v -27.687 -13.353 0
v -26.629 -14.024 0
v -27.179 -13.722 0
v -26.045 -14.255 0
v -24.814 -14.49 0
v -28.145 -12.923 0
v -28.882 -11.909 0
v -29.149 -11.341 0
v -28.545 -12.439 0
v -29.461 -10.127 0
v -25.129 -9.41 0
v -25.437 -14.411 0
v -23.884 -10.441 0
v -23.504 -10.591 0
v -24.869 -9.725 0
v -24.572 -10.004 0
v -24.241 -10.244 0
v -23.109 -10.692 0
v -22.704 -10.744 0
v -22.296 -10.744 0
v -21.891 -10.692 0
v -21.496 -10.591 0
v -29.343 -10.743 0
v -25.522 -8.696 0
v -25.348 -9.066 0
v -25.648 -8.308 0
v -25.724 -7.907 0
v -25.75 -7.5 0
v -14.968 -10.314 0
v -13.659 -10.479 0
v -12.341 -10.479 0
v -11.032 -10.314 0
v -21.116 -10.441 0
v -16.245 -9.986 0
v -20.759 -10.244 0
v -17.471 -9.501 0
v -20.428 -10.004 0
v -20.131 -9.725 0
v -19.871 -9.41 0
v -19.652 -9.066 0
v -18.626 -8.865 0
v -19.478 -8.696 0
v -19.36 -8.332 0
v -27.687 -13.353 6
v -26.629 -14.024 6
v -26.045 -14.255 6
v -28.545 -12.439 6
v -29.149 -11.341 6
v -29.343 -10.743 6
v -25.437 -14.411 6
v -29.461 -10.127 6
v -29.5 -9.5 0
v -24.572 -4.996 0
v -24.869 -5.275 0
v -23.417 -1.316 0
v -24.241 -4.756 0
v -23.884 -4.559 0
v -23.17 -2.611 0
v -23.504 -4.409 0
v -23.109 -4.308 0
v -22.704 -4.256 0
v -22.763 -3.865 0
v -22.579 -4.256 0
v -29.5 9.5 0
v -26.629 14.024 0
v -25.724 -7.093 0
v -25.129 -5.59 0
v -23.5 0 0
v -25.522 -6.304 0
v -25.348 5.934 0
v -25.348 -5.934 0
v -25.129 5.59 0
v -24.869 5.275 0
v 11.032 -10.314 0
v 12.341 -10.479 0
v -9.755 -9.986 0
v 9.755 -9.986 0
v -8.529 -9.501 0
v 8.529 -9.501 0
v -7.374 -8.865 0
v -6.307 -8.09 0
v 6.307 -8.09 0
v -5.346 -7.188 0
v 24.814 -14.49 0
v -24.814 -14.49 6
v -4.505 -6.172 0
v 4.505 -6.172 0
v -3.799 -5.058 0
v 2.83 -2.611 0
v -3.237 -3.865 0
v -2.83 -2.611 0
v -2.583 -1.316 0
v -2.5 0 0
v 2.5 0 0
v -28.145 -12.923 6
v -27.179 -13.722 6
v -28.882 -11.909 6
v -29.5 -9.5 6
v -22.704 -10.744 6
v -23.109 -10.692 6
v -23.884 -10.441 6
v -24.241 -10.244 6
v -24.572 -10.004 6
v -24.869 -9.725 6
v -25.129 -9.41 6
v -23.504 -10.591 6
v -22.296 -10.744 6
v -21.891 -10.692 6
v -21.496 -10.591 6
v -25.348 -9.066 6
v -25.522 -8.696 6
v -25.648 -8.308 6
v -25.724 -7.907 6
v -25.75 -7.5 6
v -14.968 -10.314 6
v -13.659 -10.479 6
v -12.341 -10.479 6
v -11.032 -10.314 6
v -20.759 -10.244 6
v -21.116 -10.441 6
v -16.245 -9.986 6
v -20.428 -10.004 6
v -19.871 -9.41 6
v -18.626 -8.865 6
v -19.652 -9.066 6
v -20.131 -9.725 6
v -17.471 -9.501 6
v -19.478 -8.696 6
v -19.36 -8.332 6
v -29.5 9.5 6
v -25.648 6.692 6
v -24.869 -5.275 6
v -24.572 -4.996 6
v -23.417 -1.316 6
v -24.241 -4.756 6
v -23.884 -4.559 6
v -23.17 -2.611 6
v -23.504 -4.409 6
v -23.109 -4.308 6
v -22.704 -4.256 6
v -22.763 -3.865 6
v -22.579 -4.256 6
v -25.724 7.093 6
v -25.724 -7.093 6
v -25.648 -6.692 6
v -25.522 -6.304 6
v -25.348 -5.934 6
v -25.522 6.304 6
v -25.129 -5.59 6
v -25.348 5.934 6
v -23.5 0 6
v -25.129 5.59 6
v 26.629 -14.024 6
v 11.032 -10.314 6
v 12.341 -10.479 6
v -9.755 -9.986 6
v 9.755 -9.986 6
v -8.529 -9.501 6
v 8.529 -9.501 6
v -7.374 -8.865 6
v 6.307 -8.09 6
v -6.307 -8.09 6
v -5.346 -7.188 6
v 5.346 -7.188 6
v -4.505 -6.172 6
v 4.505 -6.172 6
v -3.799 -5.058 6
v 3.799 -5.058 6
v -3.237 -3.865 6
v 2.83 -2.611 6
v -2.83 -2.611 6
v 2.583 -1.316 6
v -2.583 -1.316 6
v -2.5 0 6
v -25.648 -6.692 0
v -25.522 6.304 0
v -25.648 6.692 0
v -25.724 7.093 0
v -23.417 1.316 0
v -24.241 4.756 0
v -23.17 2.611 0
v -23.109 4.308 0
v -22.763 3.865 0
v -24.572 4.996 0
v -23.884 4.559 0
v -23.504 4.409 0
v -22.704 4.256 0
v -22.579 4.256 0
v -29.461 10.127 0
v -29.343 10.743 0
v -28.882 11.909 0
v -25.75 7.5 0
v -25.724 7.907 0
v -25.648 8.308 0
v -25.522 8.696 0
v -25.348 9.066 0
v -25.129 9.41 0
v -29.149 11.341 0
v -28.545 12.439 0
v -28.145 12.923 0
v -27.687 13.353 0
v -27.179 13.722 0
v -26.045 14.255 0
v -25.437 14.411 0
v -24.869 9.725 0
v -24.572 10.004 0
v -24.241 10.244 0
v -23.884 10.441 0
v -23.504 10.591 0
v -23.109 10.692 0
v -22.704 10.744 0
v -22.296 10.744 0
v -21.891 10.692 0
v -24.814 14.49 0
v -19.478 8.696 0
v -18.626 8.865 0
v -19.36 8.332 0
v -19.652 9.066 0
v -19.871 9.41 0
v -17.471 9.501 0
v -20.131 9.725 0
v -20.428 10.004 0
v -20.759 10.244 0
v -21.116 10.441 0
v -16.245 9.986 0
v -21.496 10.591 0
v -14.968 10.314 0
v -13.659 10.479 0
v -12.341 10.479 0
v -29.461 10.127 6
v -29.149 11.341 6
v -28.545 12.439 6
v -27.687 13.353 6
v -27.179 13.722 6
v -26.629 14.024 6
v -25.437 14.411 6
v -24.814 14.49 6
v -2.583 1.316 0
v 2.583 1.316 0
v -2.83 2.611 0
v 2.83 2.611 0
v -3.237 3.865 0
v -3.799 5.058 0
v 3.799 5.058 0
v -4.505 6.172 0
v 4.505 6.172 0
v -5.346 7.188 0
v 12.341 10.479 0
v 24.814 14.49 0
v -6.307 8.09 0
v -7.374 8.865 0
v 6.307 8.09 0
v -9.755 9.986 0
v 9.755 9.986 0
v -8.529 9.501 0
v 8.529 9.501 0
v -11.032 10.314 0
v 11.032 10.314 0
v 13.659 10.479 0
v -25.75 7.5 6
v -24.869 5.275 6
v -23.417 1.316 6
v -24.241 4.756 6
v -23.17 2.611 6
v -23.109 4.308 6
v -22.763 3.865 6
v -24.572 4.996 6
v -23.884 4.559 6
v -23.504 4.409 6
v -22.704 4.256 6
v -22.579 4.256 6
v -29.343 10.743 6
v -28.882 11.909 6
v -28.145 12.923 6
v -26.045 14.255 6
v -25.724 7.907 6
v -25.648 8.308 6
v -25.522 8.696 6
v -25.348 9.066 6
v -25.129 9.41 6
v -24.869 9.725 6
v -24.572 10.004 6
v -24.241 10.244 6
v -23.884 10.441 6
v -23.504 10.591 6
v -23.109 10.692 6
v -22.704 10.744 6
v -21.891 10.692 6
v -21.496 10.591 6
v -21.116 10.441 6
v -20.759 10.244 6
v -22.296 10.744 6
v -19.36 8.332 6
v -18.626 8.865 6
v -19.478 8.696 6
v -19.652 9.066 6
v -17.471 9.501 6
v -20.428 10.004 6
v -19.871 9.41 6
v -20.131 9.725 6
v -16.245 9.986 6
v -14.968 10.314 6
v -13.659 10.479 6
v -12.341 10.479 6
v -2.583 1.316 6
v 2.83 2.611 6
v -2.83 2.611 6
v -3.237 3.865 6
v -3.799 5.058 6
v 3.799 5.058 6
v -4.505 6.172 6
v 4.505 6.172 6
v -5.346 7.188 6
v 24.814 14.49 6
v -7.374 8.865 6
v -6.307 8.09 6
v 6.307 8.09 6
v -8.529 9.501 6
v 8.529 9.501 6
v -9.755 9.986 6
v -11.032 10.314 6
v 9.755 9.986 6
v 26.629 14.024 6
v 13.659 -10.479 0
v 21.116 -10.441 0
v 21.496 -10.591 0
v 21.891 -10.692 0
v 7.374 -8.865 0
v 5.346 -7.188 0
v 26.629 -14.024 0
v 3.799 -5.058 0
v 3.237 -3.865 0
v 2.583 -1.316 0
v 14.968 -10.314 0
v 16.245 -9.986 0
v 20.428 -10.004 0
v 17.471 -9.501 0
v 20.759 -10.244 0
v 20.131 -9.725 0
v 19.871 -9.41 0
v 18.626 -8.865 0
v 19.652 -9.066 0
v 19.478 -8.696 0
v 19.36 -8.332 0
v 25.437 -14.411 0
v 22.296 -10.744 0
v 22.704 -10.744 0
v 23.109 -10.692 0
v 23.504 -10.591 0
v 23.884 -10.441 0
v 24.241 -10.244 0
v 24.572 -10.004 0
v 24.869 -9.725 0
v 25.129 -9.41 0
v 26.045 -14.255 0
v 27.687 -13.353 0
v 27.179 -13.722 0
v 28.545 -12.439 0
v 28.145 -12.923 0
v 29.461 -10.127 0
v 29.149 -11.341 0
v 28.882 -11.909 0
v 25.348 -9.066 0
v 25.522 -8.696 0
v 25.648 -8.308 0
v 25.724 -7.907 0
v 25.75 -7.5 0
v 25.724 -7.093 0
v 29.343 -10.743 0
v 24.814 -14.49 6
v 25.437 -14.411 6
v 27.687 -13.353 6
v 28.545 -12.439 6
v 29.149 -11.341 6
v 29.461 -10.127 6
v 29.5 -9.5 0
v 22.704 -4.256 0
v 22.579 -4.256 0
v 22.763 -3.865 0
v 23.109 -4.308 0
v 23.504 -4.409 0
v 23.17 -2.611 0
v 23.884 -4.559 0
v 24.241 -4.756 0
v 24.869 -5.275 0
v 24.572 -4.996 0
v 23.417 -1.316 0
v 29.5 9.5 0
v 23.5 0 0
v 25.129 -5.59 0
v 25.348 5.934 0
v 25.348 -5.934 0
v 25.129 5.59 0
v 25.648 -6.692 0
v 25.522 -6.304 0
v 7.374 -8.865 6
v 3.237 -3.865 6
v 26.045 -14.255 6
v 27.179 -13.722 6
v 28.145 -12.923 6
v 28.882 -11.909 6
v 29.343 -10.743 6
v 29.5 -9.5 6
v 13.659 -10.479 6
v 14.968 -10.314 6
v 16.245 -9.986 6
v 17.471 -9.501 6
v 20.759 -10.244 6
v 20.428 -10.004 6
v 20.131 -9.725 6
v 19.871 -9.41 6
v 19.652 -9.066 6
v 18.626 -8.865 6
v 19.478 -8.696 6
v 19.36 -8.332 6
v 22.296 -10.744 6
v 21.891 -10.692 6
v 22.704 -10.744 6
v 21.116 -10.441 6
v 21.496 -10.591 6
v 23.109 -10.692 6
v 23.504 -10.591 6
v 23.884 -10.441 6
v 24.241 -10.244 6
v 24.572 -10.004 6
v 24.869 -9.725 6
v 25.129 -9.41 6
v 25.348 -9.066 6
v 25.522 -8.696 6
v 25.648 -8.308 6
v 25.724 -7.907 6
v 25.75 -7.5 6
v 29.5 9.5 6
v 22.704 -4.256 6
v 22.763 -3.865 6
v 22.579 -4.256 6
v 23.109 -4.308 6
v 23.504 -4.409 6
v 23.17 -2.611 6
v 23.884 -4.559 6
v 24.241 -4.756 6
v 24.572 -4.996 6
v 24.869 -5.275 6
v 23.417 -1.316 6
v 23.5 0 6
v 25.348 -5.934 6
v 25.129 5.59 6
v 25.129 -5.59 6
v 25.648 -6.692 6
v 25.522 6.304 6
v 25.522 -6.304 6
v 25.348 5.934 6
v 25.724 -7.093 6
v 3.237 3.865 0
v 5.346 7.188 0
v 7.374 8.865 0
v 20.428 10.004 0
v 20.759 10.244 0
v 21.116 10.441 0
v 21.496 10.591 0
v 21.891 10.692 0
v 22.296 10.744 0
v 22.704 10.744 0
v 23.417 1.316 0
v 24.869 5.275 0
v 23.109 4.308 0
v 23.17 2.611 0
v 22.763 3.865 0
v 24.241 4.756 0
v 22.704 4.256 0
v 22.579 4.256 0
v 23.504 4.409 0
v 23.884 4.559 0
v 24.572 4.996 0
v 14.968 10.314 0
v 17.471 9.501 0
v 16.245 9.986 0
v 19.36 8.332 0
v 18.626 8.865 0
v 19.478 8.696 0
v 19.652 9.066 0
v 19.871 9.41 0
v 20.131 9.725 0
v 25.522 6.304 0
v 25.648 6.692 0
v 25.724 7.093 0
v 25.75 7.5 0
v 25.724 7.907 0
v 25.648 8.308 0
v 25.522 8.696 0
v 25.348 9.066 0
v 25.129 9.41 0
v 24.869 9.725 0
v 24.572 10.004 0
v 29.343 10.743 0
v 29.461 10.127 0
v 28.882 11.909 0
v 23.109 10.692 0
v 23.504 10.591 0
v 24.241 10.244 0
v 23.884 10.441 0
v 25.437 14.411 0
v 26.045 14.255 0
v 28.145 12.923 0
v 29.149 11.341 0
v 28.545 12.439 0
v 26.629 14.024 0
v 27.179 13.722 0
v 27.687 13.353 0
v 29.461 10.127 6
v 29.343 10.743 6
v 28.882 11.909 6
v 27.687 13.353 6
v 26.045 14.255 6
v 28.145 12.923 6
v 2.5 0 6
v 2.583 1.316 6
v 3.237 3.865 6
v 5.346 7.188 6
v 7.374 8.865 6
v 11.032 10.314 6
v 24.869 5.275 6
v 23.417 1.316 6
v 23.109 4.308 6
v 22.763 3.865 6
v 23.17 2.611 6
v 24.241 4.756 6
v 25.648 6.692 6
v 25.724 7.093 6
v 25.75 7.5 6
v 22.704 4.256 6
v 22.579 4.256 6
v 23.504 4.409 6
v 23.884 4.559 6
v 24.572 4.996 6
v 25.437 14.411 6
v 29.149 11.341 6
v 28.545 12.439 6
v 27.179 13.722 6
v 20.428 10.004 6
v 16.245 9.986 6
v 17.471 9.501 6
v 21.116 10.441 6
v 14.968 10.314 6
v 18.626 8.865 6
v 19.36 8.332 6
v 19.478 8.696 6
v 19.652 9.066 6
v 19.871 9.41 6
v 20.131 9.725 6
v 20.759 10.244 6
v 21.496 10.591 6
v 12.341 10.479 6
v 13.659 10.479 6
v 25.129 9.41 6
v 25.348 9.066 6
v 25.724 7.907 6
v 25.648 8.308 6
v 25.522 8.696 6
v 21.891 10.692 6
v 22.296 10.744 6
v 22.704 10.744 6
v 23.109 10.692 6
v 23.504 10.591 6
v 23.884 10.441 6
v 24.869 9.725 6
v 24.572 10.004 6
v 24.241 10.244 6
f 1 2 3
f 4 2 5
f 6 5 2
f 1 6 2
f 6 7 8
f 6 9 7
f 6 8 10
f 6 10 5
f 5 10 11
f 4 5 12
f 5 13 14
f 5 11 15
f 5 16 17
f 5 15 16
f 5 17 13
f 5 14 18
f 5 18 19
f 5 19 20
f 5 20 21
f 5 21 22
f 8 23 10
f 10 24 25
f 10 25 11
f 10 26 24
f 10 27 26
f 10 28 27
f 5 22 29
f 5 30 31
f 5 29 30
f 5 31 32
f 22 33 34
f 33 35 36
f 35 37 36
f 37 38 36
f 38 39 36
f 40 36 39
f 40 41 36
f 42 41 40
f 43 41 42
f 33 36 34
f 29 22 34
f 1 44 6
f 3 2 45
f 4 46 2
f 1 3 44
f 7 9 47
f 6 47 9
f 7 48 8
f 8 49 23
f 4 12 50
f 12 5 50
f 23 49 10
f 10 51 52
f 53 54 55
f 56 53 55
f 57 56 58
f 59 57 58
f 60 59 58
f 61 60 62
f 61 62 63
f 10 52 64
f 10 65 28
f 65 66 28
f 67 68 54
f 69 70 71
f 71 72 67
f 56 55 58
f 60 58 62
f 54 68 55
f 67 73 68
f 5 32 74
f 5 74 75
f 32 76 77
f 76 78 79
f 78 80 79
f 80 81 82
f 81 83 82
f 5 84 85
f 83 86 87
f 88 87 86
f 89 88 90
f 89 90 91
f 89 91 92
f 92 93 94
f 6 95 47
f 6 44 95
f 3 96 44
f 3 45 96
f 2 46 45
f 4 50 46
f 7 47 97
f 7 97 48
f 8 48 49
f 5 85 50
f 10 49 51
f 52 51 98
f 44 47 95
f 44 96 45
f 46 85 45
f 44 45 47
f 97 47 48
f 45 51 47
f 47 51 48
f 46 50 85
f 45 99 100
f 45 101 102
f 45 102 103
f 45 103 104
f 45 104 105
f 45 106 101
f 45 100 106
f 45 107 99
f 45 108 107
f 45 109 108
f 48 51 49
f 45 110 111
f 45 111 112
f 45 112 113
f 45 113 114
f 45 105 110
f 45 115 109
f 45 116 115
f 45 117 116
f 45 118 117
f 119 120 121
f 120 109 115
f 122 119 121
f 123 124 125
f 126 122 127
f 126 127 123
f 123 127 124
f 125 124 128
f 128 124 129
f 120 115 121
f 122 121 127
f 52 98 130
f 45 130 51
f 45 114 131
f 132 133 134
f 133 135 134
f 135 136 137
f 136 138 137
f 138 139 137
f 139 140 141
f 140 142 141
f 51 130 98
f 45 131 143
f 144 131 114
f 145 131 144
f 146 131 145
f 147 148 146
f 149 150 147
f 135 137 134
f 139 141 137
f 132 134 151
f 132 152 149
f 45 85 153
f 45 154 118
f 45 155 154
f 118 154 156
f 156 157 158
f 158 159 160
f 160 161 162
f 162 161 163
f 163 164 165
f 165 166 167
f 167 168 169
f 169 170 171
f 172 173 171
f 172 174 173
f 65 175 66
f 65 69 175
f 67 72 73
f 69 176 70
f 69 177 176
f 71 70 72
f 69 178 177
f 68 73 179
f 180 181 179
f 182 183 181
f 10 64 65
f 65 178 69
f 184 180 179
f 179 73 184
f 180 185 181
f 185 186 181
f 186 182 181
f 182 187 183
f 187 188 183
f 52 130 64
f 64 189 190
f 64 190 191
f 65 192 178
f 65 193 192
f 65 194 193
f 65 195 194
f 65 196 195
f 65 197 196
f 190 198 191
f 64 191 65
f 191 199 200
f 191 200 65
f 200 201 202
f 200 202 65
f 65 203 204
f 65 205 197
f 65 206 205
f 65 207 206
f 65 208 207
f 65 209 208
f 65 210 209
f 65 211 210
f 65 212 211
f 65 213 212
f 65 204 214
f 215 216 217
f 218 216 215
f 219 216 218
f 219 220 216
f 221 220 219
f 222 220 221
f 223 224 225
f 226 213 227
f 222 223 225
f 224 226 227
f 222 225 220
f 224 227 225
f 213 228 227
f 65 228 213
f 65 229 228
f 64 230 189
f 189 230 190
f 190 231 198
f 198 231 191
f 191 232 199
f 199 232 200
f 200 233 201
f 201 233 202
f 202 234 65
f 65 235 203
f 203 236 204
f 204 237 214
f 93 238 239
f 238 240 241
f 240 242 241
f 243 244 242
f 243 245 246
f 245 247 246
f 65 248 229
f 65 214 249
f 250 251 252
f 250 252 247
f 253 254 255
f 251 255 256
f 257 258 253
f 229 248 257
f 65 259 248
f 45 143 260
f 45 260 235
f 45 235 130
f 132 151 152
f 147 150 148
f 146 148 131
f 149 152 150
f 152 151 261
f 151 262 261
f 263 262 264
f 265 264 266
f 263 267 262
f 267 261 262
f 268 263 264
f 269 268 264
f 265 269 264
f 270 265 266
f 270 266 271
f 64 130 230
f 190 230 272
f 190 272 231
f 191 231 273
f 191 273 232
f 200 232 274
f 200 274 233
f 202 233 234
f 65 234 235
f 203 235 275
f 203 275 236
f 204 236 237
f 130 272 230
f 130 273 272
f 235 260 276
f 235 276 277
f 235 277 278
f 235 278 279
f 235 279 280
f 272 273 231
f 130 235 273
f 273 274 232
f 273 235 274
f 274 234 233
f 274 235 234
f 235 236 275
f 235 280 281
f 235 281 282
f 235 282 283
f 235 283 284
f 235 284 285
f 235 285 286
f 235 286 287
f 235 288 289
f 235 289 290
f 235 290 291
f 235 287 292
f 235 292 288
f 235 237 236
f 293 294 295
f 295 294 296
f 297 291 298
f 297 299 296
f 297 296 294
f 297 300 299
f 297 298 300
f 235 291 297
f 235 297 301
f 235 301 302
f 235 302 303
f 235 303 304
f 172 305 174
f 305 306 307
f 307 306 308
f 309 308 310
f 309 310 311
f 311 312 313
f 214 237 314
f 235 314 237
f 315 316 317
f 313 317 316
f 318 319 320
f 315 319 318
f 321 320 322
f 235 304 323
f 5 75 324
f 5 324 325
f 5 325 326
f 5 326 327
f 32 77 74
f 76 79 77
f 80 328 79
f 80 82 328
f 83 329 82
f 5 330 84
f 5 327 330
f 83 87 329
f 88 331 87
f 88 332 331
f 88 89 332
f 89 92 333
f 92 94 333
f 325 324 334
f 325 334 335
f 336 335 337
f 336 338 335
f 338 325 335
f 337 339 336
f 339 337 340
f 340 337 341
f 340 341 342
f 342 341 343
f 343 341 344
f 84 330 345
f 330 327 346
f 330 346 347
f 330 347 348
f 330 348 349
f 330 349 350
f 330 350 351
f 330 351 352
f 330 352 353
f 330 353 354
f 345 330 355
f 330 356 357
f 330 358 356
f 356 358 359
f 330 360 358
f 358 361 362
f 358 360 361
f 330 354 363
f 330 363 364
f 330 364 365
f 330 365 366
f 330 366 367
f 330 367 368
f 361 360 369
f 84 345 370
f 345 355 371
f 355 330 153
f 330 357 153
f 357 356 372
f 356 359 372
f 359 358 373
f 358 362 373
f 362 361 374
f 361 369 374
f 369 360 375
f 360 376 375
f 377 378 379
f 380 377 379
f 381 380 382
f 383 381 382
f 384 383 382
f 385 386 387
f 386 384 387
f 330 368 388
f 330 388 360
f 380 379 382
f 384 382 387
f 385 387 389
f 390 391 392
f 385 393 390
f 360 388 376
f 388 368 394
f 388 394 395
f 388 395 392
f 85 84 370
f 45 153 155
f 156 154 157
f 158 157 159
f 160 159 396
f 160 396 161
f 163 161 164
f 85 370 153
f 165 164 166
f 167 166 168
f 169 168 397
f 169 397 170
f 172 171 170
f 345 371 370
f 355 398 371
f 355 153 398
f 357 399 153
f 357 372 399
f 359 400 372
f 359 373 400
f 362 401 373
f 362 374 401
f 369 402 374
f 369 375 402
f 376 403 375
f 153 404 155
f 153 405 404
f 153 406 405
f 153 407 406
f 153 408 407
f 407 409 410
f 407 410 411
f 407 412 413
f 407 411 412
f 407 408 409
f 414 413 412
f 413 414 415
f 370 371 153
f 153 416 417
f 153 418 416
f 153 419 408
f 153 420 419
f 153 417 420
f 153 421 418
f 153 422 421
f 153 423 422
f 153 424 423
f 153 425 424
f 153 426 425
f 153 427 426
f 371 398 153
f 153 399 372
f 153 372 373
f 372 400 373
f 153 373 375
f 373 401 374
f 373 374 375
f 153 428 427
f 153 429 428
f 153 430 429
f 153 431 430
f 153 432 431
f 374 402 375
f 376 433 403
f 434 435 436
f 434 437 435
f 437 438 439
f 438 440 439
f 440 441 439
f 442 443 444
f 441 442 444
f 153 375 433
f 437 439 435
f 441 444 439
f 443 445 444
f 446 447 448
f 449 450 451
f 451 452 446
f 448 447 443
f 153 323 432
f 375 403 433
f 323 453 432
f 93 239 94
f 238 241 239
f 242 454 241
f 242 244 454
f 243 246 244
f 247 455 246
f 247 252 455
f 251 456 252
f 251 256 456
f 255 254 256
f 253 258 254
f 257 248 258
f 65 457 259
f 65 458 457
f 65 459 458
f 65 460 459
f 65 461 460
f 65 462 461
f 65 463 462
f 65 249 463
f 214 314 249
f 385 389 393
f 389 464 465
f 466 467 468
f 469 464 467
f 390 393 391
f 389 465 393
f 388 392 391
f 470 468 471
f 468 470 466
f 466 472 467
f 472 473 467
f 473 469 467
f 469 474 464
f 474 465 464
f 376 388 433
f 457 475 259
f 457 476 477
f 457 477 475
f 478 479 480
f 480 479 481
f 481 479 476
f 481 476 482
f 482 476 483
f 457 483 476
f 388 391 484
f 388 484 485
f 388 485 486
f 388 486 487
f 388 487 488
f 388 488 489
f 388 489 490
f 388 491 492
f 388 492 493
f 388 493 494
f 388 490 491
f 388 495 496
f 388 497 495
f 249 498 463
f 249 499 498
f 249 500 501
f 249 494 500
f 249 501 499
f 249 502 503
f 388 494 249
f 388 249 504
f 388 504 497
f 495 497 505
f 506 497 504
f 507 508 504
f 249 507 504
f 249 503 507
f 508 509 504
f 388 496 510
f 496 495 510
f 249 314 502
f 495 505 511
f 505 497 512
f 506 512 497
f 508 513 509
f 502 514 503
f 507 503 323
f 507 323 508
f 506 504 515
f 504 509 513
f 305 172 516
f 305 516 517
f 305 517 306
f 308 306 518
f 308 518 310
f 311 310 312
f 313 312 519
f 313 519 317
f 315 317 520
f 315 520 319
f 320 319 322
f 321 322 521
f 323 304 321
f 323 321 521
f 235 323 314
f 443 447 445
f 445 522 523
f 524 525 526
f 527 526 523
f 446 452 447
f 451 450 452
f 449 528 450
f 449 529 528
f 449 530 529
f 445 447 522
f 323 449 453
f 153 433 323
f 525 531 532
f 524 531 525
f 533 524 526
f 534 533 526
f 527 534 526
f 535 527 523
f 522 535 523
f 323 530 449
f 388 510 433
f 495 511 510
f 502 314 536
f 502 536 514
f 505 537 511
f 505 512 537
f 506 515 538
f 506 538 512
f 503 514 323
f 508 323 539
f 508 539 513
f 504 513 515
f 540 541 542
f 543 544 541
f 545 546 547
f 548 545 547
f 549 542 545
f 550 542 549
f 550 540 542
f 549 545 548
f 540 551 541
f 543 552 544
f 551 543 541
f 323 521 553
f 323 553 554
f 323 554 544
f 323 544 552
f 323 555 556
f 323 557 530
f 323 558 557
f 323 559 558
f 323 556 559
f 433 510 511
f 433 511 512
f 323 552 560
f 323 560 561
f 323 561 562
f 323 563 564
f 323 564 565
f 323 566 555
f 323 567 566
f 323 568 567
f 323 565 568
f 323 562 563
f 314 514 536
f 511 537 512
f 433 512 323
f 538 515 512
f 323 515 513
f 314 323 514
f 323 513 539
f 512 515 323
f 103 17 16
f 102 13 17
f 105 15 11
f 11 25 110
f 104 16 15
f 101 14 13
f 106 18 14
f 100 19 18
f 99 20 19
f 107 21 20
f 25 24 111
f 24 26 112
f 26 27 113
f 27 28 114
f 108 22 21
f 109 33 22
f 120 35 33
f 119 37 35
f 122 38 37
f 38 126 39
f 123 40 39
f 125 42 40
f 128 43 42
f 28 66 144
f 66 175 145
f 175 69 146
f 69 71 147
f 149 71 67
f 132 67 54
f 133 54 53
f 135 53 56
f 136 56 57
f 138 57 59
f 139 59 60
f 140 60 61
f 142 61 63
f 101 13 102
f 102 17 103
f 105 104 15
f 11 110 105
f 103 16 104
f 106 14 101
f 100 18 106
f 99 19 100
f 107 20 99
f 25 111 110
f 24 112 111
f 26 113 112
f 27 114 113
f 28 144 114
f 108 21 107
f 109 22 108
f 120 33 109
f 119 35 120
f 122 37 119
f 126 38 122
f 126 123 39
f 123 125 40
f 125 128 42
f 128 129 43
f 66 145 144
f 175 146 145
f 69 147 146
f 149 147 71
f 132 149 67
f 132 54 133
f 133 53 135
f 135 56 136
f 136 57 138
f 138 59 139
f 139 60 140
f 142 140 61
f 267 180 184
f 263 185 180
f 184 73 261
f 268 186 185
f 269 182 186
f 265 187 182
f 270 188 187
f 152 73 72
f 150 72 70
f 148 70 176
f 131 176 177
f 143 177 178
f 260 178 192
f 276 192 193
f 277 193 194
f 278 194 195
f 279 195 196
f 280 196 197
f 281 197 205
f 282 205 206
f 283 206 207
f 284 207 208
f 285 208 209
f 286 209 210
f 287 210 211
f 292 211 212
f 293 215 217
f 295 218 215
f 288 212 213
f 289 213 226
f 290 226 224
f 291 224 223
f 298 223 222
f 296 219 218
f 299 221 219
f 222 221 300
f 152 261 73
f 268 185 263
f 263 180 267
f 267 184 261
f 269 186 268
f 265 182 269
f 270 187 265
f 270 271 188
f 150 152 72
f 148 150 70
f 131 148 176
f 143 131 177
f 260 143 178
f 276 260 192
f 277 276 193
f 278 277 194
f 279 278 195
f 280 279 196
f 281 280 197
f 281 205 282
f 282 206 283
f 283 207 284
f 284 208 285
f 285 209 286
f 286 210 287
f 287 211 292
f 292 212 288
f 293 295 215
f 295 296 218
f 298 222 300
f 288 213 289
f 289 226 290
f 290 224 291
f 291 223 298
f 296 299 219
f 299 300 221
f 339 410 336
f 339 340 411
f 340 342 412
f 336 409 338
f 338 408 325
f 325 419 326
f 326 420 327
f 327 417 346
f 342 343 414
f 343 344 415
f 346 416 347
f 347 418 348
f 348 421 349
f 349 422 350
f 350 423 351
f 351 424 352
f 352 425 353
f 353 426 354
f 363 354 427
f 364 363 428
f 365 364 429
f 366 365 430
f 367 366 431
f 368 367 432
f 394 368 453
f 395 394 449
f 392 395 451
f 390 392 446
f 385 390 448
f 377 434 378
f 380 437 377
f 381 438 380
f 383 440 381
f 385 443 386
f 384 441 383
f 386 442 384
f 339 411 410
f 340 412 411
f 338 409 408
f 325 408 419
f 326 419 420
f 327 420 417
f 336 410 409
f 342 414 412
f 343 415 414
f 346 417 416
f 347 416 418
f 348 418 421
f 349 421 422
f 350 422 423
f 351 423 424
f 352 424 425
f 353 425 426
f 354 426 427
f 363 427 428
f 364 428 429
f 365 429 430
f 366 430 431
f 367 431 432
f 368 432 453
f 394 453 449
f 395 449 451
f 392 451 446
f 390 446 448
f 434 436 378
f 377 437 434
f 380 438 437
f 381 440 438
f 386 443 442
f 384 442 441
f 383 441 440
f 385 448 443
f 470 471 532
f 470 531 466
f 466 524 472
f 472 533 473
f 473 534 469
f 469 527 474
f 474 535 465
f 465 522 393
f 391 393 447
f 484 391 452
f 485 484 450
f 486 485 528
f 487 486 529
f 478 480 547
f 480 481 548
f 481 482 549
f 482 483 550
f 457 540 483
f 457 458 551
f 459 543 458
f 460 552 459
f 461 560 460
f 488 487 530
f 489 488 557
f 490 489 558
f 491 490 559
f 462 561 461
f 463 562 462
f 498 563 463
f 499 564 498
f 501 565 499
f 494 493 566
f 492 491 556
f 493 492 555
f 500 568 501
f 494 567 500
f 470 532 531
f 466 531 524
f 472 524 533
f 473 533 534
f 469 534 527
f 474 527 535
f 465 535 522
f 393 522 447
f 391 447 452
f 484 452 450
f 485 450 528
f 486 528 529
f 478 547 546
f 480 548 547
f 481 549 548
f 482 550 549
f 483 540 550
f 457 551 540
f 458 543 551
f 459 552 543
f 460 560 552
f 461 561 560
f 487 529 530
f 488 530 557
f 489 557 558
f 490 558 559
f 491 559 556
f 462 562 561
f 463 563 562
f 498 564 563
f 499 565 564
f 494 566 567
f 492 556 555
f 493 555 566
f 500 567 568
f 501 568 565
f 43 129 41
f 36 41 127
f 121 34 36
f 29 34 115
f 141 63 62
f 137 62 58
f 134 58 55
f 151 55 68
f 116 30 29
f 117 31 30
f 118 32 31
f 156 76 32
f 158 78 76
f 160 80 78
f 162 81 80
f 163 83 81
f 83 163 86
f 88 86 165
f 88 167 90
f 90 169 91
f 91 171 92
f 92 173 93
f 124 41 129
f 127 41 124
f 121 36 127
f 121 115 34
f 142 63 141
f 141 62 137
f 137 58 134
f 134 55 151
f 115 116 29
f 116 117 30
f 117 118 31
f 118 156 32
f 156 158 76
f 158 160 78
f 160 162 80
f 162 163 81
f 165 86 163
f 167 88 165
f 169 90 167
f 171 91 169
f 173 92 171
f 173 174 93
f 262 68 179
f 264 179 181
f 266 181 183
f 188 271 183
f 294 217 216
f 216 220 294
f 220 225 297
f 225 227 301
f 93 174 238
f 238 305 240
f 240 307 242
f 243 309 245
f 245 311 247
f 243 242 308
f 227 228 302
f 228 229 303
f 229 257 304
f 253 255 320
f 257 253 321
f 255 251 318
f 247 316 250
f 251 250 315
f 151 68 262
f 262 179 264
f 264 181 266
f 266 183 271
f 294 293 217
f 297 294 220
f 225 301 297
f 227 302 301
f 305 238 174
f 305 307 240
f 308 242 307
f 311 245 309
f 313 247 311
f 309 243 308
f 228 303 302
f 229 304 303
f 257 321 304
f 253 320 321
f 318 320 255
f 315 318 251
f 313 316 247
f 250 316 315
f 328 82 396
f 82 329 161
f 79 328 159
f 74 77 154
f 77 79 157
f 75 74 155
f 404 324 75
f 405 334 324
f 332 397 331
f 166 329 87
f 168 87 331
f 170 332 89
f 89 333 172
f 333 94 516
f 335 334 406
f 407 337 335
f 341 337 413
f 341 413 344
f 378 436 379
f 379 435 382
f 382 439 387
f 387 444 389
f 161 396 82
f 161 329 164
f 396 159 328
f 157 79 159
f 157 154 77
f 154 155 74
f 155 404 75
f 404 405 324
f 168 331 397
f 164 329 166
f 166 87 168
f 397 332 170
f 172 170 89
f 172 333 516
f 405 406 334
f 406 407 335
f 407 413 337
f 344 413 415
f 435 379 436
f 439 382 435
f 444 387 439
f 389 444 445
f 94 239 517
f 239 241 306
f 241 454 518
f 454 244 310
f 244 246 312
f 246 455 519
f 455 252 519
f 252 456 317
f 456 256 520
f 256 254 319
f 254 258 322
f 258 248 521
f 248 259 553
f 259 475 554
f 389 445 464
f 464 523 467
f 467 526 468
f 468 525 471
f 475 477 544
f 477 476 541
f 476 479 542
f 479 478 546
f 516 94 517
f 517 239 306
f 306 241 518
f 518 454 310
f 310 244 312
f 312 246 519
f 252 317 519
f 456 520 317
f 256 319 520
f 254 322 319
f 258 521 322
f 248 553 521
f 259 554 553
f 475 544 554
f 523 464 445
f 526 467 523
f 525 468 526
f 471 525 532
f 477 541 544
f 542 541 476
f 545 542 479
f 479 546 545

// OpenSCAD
$fn = 50;

difference() {
	union() {
		hull() {
			translate(v = [-24.5, 9.5, 0]) {
				cylinder(h = 6, r = 5);
			}
			translate(v = [24.5, 9.5, 0]) {
				cylinder(h = 6, r = 5);
			}
			translate(v = [-24.5, -9.5, 0]) {
				cylinder(h = 6, r = 5);
			}
			translate(v = [24.5, -9.5, 0]) {
				cylinder(h = 6, r = 5);
			}
		}
	}
	union() {
		translate(v = [-22.5, -7.5, -100.0]) {
			cylinder(h = 200, r = 3.25);
		}
		translate(v = [-22.5, 7.5, -100.0]) {
			cylinder(h = 200, r = 3.25);
		}
		translate(v = [22.5, -7.5, -100.0]) {
			cylinder(h = 200, r = 3.25);
		}
		translate(v = [22.5, 7.5, -100.0]) {
			cylinder(h = 200, r = 3.25);
		}
		translate(v = [-22.5, -7.5, -100.0]) {
			cylinder(h = 200, r = 1.8);
		}
		translate(v = [-22.5, 7.5, -100.0]) {
			cylinder(h = 200, r = 1.8);
		}
		translate(v = [22.5, -7.5, -100.0]) {
			cylinder(h = 200, r = 1.8);
		}
		translate(v = [22.5, 7.5, -100.0]) {
			cylinder(h = 200, r = 1.8);
		}
		translate(v = [-13.0, 0, 0.0]) {
			cylinder(h = 6, r = 10.5);
		}
		translate(v = [13.0, 0, 0.0]) {
			cylinder(h = 6, r = 10.5);
		}
	}
}
